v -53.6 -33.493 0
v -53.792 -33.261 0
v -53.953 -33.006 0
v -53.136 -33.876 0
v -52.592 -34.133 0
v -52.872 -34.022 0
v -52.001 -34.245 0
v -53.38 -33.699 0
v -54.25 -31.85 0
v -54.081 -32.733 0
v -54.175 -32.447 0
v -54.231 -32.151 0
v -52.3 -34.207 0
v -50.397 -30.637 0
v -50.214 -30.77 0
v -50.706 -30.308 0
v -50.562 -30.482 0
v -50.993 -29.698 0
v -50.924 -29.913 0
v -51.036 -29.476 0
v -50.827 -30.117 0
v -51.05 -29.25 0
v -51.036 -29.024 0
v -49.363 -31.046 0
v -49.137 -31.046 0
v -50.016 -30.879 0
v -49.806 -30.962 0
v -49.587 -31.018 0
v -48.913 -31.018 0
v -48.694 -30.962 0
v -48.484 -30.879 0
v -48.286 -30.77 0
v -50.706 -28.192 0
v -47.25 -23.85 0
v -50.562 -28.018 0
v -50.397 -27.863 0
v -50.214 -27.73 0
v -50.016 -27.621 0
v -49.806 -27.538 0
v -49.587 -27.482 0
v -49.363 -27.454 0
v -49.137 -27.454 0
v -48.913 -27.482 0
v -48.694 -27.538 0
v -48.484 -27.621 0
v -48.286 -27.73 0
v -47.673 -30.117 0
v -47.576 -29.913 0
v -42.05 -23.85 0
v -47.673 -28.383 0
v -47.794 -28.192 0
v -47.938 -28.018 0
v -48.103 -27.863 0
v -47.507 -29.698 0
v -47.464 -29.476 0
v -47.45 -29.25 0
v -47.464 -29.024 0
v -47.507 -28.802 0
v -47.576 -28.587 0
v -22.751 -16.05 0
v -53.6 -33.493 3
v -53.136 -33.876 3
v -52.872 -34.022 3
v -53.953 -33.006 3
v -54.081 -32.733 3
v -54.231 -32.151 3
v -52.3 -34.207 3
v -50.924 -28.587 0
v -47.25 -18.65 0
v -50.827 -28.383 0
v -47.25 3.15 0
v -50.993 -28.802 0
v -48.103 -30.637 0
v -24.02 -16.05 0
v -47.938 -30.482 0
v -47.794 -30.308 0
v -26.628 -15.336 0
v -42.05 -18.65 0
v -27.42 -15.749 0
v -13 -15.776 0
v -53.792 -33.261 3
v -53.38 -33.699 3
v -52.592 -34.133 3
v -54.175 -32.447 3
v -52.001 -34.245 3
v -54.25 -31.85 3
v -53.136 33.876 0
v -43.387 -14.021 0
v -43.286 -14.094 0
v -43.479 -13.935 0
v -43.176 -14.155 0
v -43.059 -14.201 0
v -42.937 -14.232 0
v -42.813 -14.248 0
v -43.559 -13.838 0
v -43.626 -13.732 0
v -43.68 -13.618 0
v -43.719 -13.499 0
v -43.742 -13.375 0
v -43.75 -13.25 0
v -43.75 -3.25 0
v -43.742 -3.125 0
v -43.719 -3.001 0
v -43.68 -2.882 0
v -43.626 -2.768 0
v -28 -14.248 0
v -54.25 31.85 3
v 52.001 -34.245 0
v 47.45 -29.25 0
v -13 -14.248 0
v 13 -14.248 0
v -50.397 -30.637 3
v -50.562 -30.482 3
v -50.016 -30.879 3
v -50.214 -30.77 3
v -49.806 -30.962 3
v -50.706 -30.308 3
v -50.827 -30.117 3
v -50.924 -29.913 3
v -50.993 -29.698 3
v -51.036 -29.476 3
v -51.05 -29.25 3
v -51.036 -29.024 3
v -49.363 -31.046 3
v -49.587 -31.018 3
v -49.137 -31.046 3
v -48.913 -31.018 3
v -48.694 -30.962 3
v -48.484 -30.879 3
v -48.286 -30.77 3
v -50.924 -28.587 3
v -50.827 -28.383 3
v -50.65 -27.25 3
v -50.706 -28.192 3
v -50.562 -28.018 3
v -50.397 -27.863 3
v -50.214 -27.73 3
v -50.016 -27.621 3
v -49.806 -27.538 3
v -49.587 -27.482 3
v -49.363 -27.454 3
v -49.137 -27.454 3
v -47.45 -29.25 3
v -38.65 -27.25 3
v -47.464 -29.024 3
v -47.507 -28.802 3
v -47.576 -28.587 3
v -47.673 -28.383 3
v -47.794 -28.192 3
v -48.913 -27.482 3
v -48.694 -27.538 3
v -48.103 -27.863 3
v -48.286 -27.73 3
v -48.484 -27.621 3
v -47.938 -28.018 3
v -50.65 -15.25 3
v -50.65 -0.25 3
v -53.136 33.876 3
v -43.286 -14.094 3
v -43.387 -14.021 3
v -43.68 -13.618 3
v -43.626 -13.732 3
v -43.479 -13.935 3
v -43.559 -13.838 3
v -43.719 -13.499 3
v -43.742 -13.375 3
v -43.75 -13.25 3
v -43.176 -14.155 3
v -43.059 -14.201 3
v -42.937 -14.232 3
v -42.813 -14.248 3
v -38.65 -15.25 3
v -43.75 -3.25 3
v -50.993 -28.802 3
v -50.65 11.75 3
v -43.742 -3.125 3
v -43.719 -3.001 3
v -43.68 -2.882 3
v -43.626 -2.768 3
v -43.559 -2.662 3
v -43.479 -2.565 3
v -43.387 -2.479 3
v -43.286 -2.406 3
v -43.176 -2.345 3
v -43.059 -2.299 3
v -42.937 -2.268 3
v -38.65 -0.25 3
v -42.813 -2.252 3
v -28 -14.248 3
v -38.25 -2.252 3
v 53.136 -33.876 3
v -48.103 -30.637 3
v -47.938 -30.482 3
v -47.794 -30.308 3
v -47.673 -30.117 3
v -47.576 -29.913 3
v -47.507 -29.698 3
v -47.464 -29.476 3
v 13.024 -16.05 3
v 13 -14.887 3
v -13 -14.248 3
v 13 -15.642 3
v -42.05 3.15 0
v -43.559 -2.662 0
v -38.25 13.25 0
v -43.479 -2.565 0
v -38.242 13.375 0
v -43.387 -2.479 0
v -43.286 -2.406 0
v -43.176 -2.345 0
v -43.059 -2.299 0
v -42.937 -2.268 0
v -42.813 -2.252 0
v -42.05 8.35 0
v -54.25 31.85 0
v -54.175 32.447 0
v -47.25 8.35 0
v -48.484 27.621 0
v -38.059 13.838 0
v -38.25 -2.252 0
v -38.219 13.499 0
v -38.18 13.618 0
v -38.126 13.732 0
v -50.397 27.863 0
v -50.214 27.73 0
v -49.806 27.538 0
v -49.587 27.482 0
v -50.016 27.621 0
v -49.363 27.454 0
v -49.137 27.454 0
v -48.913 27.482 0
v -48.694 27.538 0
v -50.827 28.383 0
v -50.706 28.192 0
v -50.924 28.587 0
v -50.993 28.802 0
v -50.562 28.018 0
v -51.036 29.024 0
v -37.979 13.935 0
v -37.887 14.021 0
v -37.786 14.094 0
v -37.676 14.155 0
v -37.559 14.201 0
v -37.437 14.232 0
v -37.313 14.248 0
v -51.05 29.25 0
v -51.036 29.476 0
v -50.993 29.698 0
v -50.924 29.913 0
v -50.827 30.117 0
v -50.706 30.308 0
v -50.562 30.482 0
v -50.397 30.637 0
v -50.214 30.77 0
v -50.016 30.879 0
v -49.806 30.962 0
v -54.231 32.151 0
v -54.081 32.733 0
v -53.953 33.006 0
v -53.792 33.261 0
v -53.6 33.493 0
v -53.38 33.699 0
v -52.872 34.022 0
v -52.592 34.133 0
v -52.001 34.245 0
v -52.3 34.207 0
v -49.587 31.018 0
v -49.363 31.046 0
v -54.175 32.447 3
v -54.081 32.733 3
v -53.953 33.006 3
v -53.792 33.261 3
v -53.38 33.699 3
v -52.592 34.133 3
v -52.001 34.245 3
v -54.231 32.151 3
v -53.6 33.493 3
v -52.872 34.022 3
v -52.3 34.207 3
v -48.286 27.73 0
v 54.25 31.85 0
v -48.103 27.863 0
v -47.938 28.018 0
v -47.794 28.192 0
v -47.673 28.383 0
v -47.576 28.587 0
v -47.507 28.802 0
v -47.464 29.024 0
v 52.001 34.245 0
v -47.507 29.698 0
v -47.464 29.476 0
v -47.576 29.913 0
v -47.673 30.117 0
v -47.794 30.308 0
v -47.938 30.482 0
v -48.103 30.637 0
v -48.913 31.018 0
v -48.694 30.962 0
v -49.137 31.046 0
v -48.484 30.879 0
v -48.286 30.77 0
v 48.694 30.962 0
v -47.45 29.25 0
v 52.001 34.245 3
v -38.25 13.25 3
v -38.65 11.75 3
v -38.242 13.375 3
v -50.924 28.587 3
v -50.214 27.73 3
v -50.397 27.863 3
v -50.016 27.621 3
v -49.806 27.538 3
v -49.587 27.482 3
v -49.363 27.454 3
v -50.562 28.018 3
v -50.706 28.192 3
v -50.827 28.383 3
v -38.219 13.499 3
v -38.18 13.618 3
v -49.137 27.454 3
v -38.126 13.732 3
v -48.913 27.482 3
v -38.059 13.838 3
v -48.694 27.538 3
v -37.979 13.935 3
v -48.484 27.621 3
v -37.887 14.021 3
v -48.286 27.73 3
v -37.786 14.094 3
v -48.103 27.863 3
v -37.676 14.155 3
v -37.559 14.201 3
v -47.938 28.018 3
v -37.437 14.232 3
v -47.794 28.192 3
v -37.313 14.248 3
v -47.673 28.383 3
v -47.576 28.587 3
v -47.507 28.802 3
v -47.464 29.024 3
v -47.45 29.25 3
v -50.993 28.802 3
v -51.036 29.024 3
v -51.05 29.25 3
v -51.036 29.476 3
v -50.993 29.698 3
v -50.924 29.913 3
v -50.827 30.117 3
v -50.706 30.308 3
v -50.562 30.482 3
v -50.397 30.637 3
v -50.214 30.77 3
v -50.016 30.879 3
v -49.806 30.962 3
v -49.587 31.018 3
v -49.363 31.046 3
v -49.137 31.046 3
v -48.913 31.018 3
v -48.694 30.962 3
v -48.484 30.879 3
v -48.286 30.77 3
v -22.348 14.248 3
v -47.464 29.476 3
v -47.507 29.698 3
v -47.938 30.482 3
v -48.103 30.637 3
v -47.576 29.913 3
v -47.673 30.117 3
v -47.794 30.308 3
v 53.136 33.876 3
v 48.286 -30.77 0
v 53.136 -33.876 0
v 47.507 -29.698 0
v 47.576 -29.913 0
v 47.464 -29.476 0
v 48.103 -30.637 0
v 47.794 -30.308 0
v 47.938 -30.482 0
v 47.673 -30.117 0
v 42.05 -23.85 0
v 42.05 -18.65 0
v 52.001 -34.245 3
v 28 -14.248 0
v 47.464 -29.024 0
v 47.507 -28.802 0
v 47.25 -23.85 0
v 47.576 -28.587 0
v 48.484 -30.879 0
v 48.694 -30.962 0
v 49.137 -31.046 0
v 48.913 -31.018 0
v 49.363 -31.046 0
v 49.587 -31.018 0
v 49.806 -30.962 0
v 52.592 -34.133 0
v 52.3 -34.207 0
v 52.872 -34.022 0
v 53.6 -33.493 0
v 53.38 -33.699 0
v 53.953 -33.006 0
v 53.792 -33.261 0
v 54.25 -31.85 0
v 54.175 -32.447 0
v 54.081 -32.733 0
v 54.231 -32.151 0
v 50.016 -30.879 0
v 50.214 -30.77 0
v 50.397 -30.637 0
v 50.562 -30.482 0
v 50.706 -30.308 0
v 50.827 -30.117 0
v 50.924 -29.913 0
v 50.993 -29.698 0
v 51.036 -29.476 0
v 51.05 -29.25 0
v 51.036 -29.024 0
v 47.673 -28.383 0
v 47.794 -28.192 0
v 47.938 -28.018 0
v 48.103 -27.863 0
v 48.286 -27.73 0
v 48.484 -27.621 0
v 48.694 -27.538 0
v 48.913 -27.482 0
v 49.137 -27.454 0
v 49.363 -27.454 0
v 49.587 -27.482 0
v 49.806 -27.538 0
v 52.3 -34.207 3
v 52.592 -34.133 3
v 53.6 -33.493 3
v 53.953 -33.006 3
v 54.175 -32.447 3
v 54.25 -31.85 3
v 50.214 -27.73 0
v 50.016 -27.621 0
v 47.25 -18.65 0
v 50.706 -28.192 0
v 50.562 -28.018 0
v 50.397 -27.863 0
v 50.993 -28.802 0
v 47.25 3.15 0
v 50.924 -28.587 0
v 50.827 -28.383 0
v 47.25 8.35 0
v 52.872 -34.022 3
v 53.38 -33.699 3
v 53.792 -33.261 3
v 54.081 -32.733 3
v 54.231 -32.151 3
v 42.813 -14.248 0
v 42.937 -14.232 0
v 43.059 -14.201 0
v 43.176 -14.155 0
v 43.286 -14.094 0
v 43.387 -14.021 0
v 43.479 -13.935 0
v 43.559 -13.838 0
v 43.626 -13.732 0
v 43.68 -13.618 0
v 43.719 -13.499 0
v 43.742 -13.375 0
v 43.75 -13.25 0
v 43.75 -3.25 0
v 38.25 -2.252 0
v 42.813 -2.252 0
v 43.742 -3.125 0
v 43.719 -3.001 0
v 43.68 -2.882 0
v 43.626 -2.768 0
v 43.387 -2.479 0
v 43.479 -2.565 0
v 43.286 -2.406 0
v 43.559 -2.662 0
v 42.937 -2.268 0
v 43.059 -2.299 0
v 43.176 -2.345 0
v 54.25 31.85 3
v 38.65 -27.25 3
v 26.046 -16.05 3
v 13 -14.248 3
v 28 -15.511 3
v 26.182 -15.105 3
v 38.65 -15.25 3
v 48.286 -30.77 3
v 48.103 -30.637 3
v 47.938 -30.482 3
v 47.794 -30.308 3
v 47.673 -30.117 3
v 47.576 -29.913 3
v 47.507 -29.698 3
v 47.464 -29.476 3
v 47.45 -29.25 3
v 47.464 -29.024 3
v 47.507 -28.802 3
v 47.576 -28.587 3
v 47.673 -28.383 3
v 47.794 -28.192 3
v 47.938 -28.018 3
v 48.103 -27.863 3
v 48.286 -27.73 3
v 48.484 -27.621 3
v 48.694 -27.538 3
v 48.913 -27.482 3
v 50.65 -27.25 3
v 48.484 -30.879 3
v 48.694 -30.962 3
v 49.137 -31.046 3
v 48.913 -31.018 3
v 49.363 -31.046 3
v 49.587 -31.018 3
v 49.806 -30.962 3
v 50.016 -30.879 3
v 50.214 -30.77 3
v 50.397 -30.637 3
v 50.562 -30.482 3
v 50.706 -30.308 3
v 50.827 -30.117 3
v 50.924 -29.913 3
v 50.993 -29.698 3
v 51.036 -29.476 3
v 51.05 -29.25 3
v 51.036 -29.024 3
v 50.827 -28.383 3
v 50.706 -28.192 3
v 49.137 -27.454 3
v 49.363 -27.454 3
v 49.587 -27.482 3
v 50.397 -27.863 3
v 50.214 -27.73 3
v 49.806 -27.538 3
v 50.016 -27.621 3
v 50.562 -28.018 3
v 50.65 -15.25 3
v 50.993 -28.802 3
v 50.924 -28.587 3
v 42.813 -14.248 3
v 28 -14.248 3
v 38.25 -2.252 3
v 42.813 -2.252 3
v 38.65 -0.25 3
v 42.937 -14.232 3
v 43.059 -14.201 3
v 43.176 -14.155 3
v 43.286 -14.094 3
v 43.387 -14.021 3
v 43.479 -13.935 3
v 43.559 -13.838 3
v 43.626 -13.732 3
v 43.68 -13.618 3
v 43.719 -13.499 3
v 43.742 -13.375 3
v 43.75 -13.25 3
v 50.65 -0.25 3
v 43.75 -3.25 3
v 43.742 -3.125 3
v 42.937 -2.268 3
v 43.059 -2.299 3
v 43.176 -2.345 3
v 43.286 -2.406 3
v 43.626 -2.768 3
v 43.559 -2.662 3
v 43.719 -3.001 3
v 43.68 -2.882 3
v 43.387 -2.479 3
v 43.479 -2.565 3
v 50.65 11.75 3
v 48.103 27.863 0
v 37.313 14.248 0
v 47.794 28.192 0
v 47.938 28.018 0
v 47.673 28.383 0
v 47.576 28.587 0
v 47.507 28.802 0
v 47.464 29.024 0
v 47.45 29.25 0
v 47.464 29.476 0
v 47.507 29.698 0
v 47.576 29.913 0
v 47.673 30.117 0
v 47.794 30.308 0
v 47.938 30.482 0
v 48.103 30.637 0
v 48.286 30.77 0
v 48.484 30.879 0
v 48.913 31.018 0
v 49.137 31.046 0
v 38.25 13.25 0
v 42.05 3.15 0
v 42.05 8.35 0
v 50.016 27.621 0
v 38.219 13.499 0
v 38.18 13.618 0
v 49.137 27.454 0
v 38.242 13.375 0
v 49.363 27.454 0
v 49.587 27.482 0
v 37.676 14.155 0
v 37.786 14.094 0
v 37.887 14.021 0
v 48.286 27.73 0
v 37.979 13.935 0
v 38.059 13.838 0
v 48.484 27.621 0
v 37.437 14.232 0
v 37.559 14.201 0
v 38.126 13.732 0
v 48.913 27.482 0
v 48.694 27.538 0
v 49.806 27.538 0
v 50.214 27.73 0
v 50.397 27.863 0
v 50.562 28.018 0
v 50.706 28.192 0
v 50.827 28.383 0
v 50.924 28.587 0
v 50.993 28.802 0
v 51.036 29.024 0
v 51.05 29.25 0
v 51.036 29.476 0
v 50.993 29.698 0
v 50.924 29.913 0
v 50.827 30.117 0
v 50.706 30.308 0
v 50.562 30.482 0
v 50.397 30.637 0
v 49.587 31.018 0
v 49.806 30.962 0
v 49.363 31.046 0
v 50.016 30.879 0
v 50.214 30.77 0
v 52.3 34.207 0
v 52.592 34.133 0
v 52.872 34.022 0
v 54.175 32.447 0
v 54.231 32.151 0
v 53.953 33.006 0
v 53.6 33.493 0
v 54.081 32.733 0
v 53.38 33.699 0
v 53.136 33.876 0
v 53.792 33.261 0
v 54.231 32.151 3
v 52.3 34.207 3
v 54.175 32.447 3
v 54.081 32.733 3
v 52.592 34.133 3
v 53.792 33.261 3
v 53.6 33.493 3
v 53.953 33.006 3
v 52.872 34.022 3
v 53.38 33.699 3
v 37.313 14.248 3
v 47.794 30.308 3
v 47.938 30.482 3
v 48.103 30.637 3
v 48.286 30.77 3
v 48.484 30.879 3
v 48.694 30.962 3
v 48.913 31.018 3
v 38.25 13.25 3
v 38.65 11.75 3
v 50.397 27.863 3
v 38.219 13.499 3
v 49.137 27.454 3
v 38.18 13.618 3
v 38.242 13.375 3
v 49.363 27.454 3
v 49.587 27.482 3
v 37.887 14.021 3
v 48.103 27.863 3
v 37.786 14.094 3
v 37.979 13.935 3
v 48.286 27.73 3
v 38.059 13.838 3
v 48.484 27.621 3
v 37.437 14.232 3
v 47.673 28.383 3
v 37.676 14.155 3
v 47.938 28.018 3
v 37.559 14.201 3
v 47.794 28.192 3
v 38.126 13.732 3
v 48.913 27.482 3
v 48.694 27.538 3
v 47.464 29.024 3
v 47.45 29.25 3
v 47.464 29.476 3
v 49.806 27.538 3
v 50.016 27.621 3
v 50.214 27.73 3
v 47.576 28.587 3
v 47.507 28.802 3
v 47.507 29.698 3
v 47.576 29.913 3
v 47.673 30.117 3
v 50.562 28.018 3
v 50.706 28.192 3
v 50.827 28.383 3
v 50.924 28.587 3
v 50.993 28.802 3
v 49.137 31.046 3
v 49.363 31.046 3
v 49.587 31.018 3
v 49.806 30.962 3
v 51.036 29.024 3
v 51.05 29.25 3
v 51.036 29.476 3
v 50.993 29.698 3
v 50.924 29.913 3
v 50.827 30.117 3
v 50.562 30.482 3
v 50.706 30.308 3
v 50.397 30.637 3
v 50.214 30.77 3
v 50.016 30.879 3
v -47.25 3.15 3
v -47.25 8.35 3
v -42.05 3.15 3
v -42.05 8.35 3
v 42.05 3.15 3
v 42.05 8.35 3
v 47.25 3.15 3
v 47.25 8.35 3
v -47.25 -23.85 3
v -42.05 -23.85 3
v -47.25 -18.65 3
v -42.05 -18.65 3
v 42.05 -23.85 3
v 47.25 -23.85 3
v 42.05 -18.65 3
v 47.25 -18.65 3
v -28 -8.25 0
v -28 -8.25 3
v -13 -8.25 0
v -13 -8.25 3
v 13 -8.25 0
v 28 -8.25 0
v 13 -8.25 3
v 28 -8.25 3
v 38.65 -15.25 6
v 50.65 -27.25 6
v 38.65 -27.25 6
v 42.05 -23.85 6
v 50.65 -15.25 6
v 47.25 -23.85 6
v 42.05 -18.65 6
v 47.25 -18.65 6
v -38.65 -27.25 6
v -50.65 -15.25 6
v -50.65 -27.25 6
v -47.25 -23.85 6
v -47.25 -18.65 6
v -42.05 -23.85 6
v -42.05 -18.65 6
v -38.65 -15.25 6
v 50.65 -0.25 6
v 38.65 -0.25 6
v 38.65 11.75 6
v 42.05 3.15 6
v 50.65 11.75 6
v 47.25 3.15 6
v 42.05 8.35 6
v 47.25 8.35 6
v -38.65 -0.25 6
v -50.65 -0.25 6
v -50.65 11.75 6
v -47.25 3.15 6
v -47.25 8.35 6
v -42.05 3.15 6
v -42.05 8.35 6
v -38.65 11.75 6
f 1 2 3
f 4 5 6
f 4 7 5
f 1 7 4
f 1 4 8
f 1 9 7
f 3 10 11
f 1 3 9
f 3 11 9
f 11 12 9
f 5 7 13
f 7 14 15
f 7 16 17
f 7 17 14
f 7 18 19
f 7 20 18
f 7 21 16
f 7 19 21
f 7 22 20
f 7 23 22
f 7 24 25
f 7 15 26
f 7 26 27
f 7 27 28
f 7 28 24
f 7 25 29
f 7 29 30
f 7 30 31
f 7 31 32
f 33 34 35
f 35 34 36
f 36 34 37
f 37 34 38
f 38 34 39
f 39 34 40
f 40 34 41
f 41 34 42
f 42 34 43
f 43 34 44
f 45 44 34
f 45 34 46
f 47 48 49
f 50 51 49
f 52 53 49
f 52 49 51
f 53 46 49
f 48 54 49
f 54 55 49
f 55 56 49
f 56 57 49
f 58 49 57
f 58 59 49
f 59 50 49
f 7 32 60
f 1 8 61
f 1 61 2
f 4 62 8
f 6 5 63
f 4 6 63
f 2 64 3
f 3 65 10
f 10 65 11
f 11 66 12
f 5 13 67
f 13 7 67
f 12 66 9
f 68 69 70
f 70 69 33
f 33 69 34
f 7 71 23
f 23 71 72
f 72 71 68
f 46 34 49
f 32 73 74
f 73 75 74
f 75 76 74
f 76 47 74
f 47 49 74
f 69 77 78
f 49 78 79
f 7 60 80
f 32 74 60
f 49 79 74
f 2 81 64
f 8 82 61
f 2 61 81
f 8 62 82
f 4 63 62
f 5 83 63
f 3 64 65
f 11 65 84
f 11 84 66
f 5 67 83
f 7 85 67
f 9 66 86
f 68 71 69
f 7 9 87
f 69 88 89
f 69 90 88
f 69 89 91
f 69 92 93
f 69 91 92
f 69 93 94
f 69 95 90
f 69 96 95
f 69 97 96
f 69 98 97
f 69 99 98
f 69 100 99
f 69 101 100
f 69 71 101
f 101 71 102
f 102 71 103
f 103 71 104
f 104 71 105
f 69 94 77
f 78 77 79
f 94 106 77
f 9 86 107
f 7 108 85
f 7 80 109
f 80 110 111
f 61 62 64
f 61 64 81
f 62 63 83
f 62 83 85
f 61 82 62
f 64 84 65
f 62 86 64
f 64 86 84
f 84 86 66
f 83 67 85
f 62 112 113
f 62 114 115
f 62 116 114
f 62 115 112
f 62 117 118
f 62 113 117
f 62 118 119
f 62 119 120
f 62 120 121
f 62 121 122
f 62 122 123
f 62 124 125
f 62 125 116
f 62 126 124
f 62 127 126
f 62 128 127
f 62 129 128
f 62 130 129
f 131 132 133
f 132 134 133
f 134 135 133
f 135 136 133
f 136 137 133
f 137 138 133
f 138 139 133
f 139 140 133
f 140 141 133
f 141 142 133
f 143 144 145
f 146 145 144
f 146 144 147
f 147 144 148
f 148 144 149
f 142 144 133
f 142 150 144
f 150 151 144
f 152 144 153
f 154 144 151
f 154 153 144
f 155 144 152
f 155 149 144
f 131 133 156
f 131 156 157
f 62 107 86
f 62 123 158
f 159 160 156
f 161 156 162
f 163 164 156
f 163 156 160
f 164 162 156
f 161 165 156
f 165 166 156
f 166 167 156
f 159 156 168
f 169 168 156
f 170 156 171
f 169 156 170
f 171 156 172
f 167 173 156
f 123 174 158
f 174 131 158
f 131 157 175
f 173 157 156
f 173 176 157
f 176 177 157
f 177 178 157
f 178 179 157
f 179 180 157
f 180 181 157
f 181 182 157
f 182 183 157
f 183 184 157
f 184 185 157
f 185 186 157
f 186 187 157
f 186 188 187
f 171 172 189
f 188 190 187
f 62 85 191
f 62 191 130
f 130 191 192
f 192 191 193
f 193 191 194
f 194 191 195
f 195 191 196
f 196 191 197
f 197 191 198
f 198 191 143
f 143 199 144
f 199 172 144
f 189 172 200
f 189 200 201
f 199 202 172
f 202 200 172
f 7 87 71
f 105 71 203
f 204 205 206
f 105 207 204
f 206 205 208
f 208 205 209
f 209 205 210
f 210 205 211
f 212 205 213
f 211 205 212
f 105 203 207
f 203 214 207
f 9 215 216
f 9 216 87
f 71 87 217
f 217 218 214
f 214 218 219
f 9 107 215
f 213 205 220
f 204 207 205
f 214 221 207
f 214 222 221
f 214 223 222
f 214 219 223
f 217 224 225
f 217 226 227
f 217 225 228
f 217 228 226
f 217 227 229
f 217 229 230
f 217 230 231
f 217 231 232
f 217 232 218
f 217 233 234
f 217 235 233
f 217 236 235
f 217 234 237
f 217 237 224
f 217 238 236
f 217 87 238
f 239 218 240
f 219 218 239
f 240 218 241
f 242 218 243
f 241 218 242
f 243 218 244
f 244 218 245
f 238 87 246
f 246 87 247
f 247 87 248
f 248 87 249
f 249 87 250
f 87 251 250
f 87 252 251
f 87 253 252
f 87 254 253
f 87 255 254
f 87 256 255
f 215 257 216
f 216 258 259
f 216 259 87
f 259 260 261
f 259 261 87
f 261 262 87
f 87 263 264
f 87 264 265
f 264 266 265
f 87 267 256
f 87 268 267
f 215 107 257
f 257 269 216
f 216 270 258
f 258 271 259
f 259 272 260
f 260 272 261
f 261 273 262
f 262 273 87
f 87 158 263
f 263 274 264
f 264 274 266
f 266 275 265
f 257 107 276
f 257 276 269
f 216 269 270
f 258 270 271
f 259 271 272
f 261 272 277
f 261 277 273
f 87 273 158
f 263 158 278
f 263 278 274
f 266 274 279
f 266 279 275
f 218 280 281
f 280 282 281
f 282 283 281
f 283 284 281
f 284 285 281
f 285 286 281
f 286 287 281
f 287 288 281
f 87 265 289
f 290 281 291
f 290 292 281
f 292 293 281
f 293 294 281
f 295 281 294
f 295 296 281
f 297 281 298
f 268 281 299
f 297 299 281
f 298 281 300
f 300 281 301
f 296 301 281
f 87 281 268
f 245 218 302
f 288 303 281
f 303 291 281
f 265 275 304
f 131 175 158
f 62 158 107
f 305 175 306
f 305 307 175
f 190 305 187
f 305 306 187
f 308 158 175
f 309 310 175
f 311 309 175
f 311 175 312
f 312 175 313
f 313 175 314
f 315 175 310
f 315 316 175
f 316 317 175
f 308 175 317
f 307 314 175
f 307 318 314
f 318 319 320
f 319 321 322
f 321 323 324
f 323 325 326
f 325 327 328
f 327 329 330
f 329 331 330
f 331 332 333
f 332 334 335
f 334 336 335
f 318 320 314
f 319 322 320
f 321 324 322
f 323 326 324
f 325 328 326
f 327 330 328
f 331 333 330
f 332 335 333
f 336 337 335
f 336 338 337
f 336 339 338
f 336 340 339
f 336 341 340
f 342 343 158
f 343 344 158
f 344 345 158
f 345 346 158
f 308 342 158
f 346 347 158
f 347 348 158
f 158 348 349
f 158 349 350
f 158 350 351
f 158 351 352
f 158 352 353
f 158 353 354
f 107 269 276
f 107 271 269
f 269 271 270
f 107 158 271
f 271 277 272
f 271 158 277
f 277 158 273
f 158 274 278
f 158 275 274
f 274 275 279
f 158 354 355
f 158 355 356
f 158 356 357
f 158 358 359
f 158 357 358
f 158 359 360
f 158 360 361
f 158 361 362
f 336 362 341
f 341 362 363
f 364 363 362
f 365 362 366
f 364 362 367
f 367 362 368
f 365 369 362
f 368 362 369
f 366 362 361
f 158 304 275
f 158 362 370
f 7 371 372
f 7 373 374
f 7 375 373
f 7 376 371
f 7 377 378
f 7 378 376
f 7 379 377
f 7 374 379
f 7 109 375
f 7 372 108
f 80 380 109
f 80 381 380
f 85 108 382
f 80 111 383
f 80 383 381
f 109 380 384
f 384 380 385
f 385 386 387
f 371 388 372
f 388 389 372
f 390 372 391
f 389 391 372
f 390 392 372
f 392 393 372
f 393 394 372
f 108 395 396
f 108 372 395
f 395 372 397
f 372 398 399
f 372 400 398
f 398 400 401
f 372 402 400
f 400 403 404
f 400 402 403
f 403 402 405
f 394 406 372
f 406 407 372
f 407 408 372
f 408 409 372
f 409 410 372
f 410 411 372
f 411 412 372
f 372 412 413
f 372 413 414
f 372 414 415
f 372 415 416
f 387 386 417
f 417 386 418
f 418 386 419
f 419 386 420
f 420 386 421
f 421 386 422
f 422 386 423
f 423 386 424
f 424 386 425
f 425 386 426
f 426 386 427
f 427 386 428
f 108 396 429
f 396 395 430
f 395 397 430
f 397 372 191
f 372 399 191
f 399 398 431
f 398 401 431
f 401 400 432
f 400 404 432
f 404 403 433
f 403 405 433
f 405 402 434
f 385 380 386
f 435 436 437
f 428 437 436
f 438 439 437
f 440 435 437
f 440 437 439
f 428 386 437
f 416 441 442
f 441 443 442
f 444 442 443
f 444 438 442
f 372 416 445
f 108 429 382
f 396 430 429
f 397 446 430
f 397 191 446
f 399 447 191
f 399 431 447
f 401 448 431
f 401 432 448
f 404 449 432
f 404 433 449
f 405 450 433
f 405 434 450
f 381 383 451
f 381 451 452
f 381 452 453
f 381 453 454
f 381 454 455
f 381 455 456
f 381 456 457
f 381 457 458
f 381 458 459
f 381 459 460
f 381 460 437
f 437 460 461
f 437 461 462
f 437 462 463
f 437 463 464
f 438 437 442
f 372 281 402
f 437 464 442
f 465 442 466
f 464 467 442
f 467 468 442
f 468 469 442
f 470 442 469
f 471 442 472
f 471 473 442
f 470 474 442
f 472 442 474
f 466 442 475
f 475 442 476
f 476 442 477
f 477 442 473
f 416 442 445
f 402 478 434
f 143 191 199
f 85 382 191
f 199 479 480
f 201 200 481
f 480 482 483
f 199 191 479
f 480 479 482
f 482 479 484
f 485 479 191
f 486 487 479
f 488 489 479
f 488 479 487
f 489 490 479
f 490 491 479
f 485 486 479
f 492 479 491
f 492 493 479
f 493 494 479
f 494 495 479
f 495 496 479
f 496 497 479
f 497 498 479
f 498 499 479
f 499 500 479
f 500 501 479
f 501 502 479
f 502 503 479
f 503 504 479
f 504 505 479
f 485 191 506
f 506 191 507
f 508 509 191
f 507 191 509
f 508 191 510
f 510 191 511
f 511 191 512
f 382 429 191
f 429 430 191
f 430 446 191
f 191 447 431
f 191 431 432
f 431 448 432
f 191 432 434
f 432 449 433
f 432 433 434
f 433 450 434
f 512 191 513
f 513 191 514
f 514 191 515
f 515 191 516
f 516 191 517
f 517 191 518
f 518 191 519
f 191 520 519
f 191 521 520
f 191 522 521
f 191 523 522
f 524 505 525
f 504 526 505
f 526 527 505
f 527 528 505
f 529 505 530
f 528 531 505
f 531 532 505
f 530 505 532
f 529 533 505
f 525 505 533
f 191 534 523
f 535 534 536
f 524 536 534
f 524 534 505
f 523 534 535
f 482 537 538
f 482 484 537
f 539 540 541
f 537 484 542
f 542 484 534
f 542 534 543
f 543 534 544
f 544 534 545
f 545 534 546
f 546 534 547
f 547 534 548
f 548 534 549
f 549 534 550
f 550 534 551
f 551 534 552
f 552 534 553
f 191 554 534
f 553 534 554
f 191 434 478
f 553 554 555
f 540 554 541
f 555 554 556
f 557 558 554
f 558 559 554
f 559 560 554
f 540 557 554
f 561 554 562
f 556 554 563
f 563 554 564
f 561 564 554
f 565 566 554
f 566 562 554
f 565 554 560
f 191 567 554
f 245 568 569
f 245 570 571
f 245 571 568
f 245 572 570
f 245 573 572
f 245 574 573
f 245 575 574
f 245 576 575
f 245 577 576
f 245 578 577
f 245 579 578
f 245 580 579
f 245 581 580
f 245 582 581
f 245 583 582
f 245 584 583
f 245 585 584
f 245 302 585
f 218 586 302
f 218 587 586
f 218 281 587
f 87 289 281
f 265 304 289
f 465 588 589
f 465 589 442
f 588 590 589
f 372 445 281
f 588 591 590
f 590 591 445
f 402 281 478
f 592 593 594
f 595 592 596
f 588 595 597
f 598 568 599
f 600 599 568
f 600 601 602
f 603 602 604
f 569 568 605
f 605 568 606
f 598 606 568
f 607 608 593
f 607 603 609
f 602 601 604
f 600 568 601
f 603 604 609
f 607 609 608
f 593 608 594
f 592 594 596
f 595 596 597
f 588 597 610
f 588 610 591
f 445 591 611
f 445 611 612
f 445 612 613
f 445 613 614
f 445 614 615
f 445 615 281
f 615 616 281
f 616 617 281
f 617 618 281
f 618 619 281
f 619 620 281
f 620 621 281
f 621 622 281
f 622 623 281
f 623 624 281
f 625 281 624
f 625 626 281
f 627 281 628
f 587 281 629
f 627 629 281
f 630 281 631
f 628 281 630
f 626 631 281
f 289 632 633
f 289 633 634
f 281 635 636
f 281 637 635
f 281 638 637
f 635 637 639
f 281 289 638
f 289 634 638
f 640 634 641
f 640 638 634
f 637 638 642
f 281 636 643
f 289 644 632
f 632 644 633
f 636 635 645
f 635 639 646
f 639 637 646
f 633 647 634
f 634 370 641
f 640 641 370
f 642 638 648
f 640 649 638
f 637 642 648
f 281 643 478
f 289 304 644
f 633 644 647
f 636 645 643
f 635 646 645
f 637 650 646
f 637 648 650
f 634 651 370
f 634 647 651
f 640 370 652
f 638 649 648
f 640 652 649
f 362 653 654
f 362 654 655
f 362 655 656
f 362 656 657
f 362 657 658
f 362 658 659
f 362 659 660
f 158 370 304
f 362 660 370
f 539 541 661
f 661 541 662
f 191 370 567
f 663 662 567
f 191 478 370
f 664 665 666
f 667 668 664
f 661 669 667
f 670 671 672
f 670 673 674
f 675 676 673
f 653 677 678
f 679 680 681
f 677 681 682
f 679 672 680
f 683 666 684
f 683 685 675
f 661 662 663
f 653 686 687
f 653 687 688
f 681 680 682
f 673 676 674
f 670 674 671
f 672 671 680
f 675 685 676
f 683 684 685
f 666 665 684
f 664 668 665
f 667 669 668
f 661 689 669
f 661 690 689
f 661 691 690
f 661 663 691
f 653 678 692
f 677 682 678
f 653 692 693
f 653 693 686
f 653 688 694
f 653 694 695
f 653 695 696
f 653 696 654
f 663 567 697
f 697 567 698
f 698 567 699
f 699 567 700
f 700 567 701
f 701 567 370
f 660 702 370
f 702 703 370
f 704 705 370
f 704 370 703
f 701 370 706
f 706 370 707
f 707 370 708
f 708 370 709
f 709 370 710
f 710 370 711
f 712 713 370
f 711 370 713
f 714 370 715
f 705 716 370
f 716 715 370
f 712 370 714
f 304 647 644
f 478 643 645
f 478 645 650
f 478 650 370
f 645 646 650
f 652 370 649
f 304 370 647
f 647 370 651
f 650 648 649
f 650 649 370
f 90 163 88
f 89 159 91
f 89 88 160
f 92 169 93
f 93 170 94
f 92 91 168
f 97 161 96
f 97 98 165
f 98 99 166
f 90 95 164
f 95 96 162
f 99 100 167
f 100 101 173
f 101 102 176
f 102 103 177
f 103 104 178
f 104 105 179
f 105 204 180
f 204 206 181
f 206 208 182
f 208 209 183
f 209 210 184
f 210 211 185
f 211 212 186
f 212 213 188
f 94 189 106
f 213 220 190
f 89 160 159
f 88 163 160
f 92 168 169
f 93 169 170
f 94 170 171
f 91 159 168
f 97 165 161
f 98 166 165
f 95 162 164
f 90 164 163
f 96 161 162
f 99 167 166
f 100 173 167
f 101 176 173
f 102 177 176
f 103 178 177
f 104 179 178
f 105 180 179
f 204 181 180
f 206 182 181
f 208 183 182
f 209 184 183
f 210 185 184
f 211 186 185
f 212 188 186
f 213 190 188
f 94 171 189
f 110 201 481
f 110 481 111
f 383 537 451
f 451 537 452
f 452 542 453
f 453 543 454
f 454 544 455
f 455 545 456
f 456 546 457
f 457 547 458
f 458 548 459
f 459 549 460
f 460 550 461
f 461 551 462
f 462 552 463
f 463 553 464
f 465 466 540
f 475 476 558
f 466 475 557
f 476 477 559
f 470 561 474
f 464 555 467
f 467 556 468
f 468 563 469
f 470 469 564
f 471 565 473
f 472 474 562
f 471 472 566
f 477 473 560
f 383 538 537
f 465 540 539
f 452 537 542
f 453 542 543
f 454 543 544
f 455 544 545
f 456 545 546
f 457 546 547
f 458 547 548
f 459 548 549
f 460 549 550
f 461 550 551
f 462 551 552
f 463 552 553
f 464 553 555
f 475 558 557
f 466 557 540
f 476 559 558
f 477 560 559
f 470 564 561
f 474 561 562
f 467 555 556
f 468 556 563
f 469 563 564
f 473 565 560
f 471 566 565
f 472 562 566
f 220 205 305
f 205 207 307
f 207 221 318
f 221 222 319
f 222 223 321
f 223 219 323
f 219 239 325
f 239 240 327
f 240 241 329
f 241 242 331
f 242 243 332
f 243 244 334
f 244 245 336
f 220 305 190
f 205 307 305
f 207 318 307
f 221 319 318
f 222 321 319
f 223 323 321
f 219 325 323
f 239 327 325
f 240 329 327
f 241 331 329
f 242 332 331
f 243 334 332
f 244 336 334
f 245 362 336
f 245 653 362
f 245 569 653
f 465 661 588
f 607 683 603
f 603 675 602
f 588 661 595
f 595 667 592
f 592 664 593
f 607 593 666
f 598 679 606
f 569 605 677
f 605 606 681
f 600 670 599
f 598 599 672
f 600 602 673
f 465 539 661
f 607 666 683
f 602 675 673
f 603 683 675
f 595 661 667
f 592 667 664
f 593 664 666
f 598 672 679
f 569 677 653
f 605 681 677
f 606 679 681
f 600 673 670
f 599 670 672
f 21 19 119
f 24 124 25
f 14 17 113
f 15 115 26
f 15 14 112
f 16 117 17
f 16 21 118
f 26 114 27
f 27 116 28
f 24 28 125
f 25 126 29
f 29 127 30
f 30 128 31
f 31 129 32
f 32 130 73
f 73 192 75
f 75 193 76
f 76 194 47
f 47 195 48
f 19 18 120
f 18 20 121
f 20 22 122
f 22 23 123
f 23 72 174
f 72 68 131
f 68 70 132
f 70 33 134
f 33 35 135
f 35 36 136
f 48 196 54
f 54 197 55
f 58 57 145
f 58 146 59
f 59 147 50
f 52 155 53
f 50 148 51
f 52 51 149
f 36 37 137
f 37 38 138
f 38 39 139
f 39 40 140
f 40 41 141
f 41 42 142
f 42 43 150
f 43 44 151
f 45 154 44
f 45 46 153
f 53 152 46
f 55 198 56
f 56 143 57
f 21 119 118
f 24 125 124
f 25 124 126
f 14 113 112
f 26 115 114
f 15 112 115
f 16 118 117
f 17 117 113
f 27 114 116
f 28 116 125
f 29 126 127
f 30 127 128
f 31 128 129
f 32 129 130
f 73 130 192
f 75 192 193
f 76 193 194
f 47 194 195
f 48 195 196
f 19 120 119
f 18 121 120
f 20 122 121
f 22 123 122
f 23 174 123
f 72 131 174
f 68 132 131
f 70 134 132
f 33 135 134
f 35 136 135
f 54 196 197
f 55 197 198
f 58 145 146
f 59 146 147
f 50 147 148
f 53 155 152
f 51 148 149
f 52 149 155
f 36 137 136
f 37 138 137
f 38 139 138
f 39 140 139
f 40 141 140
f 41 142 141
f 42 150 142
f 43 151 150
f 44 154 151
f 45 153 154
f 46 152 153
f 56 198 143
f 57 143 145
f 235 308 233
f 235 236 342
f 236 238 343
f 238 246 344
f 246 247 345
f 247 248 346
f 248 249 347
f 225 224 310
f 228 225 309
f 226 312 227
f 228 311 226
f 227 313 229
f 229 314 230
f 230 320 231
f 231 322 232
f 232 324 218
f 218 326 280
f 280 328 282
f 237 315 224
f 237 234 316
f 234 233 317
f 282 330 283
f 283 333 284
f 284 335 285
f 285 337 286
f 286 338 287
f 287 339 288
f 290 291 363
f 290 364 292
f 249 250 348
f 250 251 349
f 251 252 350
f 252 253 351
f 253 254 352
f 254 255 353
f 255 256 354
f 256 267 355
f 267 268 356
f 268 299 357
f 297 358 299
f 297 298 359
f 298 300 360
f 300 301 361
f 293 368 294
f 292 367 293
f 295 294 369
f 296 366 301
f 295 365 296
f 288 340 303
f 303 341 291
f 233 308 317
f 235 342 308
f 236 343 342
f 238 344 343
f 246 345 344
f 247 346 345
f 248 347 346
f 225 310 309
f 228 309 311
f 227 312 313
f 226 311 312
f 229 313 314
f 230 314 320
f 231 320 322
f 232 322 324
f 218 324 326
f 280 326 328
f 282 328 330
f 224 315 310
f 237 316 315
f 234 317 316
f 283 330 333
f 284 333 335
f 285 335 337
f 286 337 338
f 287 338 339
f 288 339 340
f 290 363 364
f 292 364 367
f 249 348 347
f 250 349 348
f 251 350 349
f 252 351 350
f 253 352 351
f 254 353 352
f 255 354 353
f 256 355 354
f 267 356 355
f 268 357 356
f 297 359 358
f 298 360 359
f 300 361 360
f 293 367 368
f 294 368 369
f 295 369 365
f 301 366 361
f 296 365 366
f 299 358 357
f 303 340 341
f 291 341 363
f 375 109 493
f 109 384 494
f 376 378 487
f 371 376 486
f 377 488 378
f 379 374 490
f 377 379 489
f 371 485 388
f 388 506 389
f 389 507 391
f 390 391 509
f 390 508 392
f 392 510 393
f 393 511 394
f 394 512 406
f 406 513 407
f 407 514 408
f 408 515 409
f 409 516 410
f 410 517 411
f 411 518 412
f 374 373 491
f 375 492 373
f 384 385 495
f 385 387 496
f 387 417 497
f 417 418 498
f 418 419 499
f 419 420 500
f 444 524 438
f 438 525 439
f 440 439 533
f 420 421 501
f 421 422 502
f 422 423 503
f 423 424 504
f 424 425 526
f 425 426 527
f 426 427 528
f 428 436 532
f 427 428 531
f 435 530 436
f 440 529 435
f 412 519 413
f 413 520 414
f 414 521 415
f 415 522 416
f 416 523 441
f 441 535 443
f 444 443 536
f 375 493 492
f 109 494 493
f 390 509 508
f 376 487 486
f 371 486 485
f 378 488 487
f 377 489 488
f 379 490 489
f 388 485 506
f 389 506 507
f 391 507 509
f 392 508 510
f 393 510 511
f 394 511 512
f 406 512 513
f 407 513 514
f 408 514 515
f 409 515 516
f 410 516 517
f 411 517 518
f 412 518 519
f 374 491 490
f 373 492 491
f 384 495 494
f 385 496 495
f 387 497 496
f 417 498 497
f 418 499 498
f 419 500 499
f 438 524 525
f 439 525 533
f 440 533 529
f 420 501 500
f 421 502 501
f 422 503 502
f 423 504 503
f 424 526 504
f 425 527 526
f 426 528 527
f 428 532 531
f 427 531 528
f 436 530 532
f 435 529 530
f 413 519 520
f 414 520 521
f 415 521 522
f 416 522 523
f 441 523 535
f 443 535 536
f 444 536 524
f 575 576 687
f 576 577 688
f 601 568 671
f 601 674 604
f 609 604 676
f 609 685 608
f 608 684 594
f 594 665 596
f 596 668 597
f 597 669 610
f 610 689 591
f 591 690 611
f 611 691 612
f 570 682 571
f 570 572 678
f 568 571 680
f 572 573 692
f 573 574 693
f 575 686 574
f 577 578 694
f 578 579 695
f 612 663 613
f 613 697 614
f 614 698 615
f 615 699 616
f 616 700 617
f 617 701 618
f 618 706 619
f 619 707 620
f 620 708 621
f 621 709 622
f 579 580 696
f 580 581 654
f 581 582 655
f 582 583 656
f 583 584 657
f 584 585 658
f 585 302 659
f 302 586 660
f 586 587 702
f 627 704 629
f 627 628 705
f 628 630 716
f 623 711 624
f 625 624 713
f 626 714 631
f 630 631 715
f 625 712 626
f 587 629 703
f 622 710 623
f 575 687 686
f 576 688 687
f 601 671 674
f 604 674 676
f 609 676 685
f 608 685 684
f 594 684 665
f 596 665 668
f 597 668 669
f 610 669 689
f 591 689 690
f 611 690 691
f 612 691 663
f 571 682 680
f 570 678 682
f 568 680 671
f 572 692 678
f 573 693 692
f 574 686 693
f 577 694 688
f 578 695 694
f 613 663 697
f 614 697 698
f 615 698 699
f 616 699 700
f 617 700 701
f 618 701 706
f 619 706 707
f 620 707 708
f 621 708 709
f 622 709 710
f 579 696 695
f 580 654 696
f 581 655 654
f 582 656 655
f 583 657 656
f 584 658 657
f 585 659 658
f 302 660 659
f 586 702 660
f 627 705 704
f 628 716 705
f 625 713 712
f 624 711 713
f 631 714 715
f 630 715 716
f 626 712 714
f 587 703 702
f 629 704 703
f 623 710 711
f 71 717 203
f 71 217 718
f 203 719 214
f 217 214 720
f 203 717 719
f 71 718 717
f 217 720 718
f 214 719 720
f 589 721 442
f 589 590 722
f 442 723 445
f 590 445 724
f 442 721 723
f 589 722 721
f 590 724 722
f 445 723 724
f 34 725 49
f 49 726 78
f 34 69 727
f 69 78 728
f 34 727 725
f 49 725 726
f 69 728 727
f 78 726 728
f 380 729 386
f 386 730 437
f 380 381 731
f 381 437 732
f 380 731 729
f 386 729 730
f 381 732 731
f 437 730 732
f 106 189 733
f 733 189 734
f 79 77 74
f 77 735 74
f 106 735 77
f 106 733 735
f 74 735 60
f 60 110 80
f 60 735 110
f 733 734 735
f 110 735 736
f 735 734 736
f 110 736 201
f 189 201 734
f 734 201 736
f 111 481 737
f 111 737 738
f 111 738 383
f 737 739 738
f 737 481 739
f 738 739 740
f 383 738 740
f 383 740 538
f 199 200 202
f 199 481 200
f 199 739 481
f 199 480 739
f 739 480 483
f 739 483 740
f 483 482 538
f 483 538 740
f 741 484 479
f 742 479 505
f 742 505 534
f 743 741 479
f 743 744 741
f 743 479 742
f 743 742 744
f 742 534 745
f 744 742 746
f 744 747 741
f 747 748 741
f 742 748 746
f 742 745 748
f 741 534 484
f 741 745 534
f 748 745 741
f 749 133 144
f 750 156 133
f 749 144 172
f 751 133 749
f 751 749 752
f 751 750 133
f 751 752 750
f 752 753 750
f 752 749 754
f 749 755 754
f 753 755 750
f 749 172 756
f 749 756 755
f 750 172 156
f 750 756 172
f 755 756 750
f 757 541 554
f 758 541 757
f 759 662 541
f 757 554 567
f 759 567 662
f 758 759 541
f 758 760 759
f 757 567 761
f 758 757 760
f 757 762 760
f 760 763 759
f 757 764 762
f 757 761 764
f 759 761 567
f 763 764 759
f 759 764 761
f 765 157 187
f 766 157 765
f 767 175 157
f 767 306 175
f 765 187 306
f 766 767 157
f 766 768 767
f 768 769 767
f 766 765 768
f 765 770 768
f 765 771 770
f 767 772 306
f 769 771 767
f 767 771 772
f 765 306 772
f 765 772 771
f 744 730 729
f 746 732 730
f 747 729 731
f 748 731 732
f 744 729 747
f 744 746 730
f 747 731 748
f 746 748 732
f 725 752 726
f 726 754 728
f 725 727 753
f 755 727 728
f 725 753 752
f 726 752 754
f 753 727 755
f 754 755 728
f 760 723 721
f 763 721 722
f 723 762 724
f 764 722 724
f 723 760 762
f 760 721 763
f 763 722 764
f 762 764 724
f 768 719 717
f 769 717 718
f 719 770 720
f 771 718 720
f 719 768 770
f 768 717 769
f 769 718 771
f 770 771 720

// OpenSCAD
$fn = 50;

difference() {
	union() {
		translate(v = [0, 0, 0]) {
			rotate(a = [0, 0, 0]) {
				difference() {
					union() {
						translate(v = [0, 0, 0]) {
							rotate(a = [0, 0, 0]) {
								difference() {
									union() {
										hull() {
											translate(v = [-51.85, 31.85, 0]) {
												cylinder(h = 3.0, r = 2.4);
											}
											translate(v = [51.85, 31.85, 0]) {
												cylinder(h = 3.0, r = 2.4);
											}
											translate(v = [-51.85, -31.85, 0]) {
												cylinder(h = 3.0, r = 2.4);
											}
											translate(v = [51.85, -31.85, 0]) {
												cylinder(h = 3.0, r = 2.4);
											}
										}
									}
									union() {
										translate(v = [0.0, -8.25, -0.1]) {
											hull() {
												translate(v = [-42.75, 5.0, 0]) {
													cylinder(h = 18.2, r = 1.0);
												}
												translate(v = [42.75, 5.0, 0]) {
													cylinder(h = 18.2, r = 1.0);
												}
												translate(v = [-42.75, -5.0, 0]) {
													cylinder(h = 18.2, r = 1.0);
												}
												translate(v = [42.75, -5.0, 0]) {
													cylinder(h = 18.2, r = 1.0);
												}
											}
										}
										translate(v = [0.0, 0.0, -0.1]) {
											hull() {
												translate(v = [-37.25, 13.25, 0]) {
													cylinder(h = 18.2, r = 1.0);
												}
												translate(v = [37.25, 13.25, 0]) {
													cylinder(h = 18.2, r = 1.0);
												}
												translate(v = [-37.25, -13.25, 0]) {
													cylinder(h = 18.2, r = 1.0);
												}
												translate(v = [37.25, -13.25, 0]) {
													cylinder(h = 18.2, r = 1.0);
												}
											}
										}
										translate(v = [-49.25, -29.25, -0.1]) {
											cylinder(h = 6.2, r = 1.8);
										}
										translate(v = [-49.25, 29.25, -0.1]) {
											cylinder(h = 6.2, r = 1.8);
										}
										translate(v = [49.25, -29.25, -0.1]) {
											cylinder(h = 6.2, r = 1.8);
										}
										translate(v = [49.25, 29.25, -0.1]) {
											cylinder(h = 6.2, r = 1.8);
										}
										translate(v = [-47.25, 3.15, -0.1]) {
											cube(size = [5.2, 5.2, 6.2]);
										}
										translate(v = [42.05, 3.15, -0.1]) {
											cube(size = [5.2, 5.2, 6.2]);
										}
										translate(v = [-47.25, -23.85, -0.1]) {
											cube(size = [5.2, 5.2, 6.2]);
										}
										translate(v = [42.05, -23.85, -0.1]) {
											cube(size = [5.2, 5.2, 6.2]);
										}
									}
								}
							}
						}
						translate(v = [0, 0, 0]) {
							rotate(a = [0, 0, 0]) {
								difference() {
									union() {
										translate(v = [-28.0, -16.05, 0]) {
											cube(size = [15.0, 7.8, 3.0]);
										}
									}
									union();
								}
							}
						}
						translate(v = [0, 0, 0]) {
							rotate(a = [0, 0, 0]) {
								difference() {
									union() {
										translate(v = [13.0, -16.05, 0]) {
											cube(size = [15.0, 7.8, 3.0]);
										}
									}
									union();
								}
							}
						}
					}
					union();
				}
			}
		}
		translate(v = [-44.65, 5.75, 3.0]) {
			rotate(a = [0, 0, 0]) {
				difference() {
					union() {
						translate(v = [-6.0, -6.0, 0]) {
							cube(size = [12.0, 12.0, 3.0]);
						}
					}
					union() {
						translate(v = [-2.6, -2.6, -0.1]) {
							cube(size = [5.2, 5.2, 3.2]);
						}
					}
				}
			}
		}
		translate(v = [44.65, 5.75, 3.0]) {
			rotate(a = [0, 0, 0]) {
				difference() {
					union() {
						translate(v = [-6.0, -6.0, 0]) {
							cube(size = [12.0, 12.0, 3.0]);
						}
					}
					union() {
						translate(v = [-2.6, -2.6, -0.1]) {
							cube(size = [5.2, 5.2, 3.2]);
						}
					}
				}
			}
		}
		translate(v = [-44.65, -21.25, 3.0]) {
			rotate(a = [0, 0, 0]) {
				difference() {
					union() {
						translate(v = [-6.0, -6.0, 0]) {
							cube(size = [12.0, 12.0, 3.0]);
						}
					}
					union() {
						translate(v = [-2.6, -2.6, -0.1]) {
							cube(size = [5.2, 5.2, 3.2]);
						}
					}
				}
			}
		}
		translate(v = [44.65, -21.25, 3.0]) {
			rotate(a = [0, 0, 0]) {
				difference() {
					union() {
						translate(v = [-6.0, -6.0, 0]) {
							cube(size = [12.0, 12.0, 3.0]);
						}
					}
					union() {
						translate(v = [-2.6, -2.6, -0.1]) {
							cube(size = [5.2, 5.2, 3.2]);
						}
					}
				}
			}
		}
	}
	union();
}
